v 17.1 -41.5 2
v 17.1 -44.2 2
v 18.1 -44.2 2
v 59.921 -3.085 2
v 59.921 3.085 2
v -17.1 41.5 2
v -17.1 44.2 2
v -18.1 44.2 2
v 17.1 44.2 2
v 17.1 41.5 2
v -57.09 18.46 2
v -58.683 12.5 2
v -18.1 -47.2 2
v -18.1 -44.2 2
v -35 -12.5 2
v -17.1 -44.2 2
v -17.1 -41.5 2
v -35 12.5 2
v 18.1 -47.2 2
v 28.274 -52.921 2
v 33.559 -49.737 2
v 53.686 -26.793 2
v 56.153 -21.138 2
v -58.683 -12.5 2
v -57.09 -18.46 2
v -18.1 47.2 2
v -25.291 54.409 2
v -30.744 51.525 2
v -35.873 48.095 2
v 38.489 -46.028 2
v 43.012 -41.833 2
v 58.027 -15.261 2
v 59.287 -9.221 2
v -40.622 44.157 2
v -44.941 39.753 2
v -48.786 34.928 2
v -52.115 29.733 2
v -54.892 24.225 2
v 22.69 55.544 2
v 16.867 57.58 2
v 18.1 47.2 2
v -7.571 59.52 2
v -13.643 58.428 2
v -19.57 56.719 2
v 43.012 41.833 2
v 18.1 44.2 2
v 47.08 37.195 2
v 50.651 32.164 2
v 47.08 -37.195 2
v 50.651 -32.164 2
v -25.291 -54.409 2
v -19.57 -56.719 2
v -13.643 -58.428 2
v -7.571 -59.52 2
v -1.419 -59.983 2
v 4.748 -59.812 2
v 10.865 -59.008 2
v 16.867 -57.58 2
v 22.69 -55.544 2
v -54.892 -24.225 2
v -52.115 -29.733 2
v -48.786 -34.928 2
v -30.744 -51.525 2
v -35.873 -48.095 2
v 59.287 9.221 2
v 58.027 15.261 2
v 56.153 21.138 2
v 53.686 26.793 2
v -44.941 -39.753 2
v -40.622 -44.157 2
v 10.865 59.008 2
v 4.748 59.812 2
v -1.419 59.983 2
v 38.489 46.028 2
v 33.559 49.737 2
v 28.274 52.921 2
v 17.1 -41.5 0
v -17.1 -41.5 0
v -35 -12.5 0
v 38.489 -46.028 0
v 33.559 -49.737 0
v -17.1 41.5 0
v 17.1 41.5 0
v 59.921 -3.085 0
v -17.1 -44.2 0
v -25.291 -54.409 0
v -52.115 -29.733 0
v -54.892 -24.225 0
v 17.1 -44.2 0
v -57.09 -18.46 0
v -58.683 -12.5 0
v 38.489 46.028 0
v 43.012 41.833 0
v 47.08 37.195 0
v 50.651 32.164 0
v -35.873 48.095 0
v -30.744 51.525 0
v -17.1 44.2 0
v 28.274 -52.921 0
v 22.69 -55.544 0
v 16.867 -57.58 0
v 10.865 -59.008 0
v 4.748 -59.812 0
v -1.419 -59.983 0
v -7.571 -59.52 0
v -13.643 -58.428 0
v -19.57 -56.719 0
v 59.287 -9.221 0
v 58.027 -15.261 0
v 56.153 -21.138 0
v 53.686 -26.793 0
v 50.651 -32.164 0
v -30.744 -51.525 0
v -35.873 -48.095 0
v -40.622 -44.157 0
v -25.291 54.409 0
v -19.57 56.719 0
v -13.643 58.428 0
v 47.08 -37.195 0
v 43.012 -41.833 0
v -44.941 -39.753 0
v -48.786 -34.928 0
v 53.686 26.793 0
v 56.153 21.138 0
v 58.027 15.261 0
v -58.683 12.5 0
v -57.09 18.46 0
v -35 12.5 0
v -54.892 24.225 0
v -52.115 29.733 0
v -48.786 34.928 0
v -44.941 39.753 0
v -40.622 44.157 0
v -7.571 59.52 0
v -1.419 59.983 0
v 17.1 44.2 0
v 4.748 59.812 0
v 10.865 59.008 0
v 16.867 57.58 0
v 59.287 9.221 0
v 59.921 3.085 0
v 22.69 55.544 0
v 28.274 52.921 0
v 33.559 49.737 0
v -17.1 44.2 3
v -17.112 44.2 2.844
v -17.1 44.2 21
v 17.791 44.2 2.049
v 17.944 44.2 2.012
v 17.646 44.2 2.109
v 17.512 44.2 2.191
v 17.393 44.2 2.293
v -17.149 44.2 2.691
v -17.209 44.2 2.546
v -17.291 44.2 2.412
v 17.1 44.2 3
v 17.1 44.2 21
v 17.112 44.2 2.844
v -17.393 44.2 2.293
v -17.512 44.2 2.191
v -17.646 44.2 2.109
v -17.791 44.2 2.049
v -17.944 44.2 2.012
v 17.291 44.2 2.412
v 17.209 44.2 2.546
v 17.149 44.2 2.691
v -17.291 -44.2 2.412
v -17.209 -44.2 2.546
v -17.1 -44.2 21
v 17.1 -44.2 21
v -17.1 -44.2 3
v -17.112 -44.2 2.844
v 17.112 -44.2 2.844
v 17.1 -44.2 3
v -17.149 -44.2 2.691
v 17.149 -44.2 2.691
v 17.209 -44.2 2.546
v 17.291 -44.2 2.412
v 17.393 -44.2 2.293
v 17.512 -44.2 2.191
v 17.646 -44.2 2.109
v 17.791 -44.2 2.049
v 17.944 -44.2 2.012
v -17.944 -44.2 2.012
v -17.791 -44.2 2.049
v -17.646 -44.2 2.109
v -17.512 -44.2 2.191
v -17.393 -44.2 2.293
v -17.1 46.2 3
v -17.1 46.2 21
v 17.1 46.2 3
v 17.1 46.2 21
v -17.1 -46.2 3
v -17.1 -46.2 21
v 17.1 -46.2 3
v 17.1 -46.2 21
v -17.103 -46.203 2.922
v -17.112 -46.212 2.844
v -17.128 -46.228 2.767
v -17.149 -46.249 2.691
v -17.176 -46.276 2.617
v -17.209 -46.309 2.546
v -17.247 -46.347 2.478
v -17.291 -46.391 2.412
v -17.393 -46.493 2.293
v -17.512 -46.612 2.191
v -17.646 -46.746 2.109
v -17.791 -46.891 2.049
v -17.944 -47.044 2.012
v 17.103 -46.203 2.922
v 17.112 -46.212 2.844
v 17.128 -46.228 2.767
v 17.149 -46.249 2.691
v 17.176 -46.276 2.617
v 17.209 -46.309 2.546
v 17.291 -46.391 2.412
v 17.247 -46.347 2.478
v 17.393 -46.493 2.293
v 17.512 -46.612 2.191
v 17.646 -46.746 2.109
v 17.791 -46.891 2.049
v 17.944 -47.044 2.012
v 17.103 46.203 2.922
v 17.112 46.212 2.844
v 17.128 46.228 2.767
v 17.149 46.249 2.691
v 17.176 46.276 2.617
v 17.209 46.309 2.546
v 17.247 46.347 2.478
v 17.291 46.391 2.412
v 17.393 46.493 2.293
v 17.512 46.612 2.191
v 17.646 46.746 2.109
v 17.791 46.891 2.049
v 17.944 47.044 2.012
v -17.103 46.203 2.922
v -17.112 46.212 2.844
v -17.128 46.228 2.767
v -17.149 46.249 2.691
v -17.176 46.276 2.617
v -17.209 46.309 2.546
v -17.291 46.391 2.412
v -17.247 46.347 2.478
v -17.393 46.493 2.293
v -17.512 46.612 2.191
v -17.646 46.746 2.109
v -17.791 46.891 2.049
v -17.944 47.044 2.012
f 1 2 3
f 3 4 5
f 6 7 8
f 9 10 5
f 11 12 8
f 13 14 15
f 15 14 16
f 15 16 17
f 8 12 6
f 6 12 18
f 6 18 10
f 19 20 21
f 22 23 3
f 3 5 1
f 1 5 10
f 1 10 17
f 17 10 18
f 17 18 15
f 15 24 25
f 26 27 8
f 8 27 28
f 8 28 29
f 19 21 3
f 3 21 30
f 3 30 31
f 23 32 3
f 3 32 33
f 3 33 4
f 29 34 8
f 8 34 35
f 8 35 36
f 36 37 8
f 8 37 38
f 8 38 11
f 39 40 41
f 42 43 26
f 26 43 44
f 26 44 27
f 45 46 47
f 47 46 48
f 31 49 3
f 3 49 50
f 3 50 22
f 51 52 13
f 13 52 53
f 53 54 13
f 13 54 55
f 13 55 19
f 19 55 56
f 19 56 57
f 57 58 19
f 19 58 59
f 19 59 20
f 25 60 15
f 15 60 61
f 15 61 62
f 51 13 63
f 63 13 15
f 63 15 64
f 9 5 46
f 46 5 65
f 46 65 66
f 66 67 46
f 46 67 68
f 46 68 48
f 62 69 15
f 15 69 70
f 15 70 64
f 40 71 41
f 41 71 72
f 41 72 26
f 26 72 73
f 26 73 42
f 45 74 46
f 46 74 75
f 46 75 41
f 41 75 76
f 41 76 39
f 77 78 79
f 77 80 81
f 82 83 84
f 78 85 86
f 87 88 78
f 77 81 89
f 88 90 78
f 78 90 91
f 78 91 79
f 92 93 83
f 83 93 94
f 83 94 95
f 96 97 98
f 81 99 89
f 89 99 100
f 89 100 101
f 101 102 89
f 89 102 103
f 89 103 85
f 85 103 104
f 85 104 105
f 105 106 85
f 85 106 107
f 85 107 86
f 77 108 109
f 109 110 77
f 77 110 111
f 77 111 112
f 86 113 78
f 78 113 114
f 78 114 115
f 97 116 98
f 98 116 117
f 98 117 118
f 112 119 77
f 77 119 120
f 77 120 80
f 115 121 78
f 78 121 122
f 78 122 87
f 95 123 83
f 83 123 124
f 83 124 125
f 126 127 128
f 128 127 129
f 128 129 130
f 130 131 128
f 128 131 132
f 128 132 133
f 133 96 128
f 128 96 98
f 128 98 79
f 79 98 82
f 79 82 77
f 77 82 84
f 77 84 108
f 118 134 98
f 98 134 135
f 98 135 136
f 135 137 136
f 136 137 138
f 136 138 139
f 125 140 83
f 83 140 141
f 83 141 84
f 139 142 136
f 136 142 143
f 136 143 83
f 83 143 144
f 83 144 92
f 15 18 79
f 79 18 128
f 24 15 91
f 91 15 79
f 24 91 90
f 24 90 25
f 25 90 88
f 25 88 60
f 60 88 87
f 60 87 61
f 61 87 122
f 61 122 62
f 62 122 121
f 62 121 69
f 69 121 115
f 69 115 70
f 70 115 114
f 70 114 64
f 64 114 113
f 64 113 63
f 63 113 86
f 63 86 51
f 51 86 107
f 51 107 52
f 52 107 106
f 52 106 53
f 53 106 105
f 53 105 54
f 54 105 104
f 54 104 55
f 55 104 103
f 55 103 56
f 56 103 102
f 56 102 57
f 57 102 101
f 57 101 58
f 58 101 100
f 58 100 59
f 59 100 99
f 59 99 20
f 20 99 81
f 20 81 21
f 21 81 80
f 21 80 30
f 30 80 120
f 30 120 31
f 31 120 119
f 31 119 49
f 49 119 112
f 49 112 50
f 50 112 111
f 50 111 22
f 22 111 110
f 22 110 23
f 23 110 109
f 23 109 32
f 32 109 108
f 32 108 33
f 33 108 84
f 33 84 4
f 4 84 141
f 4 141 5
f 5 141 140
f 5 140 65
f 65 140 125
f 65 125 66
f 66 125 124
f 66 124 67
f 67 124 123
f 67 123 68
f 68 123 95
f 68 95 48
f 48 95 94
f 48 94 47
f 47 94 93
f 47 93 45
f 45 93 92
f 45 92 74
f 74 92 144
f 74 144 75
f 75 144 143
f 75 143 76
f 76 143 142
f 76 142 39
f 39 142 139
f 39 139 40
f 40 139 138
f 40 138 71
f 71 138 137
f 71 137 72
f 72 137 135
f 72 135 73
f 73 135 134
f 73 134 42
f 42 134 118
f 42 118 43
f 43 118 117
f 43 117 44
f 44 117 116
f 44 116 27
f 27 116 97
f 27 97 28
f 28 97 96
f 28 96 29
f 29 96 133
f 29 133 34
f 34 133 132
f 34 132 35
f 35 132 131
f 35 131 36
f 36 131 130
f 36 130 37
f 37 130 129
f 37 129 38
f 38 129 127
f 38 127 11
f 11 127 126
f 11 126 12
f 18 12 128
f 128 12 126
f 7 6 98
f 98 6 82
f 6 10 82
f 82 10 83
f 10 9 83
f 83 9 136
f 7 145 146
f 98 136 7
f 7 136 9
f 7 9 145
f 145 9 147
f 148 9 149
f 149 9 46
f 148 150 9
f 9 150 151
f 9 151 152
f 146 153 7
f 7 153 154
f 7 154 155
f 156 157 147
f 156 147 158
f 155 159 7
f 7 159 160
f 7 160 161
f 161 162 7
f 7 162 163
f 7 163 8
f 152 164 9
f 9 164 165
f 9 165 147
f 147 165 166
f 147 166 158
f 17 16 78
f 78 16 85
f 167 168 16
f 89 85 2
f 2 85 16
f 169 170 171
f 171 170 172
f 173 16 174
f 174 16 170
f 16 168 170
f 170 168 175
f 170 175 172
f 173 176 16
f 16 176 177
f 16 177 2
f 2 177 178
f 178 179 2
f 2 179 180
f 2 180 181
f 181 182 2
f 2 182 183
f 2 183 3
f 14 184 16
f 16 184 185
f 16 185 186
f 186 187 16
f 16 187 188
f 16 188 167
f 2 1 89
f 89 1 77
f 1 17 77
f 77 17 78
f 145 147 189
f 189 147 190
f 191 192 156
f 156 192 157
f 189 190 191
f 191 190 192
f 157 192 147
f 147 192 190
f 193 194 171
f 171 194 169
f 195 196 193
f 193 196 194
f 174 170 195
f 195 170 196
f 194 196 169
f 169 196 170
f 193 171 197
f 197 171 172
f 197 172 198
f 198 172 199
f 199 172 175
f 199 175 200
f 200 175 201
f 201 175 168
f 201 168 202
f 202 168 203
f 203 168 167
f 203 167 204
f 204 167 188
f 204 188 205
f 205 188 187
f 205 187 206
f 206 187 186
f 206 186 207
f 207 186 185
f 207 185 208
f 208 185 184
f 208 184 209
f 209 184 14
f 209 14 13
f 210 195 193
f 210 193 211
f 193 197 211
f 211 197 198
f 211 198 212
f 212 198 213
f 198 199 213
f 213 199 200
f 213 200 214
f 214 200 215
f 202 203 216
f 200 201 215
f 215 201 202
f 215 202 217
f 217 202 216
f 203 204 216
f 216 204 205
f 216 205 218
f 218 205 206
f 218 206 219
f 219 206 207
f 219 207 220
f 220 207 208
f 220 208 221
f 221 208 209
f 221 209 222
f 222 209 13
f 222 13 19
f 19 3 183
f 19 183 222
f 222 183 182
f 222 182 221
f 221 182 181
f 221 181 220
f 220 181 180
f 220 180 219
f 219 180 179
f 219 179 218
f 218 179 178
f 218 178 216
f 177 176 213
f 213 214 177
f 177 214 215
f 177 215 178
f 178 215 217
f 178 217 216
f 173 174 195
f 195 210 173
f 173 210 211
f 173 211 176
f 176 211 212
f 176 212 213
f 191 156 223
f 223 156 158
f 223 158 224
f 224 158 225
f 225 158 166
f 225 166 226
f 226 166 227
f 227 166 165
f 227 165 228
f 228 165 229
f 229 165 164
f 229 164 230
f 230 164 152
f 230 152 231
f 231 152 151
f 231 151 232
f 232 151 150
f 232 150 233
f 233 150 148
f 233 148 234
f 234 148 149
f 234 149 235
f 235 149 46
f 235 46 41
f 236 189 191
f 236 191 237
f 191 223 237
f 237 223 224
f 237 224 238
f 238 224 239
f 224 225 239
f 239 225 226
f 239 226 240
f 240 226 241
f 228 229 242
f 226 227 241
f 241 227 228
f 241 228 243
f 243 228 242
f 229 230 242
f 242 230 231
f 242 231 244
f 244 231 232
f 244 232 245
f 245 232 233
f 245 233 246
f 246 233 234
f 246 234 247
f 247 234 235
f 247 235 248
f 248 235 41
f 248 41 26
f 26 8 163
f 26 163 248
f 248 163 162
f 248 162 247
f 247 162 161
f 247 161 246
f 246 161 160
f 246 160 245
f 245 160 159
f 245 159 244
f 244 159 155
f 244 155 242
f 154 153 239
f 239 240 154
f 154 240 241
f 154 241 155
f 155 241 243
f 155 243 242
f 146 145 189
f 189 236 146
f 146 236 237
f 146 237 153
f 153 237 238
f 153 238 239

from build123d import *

# Parameters (mm, degrees)
CROQUIS1_W              = 34.2
CROQUIS1_H              = 2.7
SALIENTE_EXTRUIR1_DEPTH = 2
CROQUIS2_W              = 34.2
CROQUIS2_H              = 2
SALIENTE_EXTRUIR2_DEPTH = 19
REDONDEO1_R             = 1


with BuildPart() as part:
    # Croquis1 → Saliente-Extruir1 (new body)
    with BuildSketch(Plane.XY):
        with BuildLine():
            Line((-58.683472972, -12.5), (-35, -12.5))
            Line((-35, -12.5), (-35, 12.5))
            Line((-35, 12.5), (-58.683472972, 12.5))
            ThreePointArc((-58.683472972, 12.5), (60, 0), (-58.683472972, -12.5))
        make_face()
        with Locations((0, 42.85)):
            Rectangle(CROQUIS1_W, CROQUIS1_H, mode=Mode.SUBTRACT)
        with Locations((0, -42.85)):
            Rectangle(CROQUIS1_W, CROQUIS1_H, mode=Mode.SUBTRACT)
    extrude(amount=SALIENTE_EXTRUIR1_DEPTH)

    # Croquis2 → Saliente-Extruir2 (add)
    with BuildSketch(Plane.XY.offset(2)):
        with Locations((0, 45.2)):
            Rectangle(CROQUIS2_W, CROQUIS2_H)
        with Locations((0, -45.2)):
            Rectangle(CROQUIS2_W, CROQUIS2_H)
    extrude(amount=SALIENTE_EXTRUIR2_DEPTH)

    # Redondeo1
    redondeo1_edges = [part.edges().sort_by_distance(p)[0] for p in [
        (-17.1, 45.2, 2),
        (17.1, 45.2, 2),
        (0, 46.2, 2),
        (-17.1, -45.2, 2),
        (0, -46.2, 2),
        (17.1, -45.2, 2),
    ]]
    fillet(redondeo1_edges, radius=REDONDEO1_R)


solid = part.part
